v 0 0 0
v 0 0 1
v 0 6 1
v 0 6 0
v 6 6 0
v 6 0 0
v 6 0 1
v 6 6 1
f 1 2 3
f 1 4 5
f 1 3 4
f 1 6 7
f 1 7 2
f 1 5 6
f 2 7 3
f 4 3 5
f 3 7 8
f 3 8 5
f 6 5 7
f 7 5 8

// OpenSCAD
/* Warning, this is a very basic generator with a lot of approximation 
input data : [QFN, RQX, 6x6x1.0mm, 36, , A, C04-17031A]
generated by com.zoubworld.electronics.cad.model3d.Basic
Date : Sun Feb 15 10:50:49 CET 2026
*/

//body
color("black")
translate([0,0,0])
cube([6.0,6.0,1.0], center=false);
